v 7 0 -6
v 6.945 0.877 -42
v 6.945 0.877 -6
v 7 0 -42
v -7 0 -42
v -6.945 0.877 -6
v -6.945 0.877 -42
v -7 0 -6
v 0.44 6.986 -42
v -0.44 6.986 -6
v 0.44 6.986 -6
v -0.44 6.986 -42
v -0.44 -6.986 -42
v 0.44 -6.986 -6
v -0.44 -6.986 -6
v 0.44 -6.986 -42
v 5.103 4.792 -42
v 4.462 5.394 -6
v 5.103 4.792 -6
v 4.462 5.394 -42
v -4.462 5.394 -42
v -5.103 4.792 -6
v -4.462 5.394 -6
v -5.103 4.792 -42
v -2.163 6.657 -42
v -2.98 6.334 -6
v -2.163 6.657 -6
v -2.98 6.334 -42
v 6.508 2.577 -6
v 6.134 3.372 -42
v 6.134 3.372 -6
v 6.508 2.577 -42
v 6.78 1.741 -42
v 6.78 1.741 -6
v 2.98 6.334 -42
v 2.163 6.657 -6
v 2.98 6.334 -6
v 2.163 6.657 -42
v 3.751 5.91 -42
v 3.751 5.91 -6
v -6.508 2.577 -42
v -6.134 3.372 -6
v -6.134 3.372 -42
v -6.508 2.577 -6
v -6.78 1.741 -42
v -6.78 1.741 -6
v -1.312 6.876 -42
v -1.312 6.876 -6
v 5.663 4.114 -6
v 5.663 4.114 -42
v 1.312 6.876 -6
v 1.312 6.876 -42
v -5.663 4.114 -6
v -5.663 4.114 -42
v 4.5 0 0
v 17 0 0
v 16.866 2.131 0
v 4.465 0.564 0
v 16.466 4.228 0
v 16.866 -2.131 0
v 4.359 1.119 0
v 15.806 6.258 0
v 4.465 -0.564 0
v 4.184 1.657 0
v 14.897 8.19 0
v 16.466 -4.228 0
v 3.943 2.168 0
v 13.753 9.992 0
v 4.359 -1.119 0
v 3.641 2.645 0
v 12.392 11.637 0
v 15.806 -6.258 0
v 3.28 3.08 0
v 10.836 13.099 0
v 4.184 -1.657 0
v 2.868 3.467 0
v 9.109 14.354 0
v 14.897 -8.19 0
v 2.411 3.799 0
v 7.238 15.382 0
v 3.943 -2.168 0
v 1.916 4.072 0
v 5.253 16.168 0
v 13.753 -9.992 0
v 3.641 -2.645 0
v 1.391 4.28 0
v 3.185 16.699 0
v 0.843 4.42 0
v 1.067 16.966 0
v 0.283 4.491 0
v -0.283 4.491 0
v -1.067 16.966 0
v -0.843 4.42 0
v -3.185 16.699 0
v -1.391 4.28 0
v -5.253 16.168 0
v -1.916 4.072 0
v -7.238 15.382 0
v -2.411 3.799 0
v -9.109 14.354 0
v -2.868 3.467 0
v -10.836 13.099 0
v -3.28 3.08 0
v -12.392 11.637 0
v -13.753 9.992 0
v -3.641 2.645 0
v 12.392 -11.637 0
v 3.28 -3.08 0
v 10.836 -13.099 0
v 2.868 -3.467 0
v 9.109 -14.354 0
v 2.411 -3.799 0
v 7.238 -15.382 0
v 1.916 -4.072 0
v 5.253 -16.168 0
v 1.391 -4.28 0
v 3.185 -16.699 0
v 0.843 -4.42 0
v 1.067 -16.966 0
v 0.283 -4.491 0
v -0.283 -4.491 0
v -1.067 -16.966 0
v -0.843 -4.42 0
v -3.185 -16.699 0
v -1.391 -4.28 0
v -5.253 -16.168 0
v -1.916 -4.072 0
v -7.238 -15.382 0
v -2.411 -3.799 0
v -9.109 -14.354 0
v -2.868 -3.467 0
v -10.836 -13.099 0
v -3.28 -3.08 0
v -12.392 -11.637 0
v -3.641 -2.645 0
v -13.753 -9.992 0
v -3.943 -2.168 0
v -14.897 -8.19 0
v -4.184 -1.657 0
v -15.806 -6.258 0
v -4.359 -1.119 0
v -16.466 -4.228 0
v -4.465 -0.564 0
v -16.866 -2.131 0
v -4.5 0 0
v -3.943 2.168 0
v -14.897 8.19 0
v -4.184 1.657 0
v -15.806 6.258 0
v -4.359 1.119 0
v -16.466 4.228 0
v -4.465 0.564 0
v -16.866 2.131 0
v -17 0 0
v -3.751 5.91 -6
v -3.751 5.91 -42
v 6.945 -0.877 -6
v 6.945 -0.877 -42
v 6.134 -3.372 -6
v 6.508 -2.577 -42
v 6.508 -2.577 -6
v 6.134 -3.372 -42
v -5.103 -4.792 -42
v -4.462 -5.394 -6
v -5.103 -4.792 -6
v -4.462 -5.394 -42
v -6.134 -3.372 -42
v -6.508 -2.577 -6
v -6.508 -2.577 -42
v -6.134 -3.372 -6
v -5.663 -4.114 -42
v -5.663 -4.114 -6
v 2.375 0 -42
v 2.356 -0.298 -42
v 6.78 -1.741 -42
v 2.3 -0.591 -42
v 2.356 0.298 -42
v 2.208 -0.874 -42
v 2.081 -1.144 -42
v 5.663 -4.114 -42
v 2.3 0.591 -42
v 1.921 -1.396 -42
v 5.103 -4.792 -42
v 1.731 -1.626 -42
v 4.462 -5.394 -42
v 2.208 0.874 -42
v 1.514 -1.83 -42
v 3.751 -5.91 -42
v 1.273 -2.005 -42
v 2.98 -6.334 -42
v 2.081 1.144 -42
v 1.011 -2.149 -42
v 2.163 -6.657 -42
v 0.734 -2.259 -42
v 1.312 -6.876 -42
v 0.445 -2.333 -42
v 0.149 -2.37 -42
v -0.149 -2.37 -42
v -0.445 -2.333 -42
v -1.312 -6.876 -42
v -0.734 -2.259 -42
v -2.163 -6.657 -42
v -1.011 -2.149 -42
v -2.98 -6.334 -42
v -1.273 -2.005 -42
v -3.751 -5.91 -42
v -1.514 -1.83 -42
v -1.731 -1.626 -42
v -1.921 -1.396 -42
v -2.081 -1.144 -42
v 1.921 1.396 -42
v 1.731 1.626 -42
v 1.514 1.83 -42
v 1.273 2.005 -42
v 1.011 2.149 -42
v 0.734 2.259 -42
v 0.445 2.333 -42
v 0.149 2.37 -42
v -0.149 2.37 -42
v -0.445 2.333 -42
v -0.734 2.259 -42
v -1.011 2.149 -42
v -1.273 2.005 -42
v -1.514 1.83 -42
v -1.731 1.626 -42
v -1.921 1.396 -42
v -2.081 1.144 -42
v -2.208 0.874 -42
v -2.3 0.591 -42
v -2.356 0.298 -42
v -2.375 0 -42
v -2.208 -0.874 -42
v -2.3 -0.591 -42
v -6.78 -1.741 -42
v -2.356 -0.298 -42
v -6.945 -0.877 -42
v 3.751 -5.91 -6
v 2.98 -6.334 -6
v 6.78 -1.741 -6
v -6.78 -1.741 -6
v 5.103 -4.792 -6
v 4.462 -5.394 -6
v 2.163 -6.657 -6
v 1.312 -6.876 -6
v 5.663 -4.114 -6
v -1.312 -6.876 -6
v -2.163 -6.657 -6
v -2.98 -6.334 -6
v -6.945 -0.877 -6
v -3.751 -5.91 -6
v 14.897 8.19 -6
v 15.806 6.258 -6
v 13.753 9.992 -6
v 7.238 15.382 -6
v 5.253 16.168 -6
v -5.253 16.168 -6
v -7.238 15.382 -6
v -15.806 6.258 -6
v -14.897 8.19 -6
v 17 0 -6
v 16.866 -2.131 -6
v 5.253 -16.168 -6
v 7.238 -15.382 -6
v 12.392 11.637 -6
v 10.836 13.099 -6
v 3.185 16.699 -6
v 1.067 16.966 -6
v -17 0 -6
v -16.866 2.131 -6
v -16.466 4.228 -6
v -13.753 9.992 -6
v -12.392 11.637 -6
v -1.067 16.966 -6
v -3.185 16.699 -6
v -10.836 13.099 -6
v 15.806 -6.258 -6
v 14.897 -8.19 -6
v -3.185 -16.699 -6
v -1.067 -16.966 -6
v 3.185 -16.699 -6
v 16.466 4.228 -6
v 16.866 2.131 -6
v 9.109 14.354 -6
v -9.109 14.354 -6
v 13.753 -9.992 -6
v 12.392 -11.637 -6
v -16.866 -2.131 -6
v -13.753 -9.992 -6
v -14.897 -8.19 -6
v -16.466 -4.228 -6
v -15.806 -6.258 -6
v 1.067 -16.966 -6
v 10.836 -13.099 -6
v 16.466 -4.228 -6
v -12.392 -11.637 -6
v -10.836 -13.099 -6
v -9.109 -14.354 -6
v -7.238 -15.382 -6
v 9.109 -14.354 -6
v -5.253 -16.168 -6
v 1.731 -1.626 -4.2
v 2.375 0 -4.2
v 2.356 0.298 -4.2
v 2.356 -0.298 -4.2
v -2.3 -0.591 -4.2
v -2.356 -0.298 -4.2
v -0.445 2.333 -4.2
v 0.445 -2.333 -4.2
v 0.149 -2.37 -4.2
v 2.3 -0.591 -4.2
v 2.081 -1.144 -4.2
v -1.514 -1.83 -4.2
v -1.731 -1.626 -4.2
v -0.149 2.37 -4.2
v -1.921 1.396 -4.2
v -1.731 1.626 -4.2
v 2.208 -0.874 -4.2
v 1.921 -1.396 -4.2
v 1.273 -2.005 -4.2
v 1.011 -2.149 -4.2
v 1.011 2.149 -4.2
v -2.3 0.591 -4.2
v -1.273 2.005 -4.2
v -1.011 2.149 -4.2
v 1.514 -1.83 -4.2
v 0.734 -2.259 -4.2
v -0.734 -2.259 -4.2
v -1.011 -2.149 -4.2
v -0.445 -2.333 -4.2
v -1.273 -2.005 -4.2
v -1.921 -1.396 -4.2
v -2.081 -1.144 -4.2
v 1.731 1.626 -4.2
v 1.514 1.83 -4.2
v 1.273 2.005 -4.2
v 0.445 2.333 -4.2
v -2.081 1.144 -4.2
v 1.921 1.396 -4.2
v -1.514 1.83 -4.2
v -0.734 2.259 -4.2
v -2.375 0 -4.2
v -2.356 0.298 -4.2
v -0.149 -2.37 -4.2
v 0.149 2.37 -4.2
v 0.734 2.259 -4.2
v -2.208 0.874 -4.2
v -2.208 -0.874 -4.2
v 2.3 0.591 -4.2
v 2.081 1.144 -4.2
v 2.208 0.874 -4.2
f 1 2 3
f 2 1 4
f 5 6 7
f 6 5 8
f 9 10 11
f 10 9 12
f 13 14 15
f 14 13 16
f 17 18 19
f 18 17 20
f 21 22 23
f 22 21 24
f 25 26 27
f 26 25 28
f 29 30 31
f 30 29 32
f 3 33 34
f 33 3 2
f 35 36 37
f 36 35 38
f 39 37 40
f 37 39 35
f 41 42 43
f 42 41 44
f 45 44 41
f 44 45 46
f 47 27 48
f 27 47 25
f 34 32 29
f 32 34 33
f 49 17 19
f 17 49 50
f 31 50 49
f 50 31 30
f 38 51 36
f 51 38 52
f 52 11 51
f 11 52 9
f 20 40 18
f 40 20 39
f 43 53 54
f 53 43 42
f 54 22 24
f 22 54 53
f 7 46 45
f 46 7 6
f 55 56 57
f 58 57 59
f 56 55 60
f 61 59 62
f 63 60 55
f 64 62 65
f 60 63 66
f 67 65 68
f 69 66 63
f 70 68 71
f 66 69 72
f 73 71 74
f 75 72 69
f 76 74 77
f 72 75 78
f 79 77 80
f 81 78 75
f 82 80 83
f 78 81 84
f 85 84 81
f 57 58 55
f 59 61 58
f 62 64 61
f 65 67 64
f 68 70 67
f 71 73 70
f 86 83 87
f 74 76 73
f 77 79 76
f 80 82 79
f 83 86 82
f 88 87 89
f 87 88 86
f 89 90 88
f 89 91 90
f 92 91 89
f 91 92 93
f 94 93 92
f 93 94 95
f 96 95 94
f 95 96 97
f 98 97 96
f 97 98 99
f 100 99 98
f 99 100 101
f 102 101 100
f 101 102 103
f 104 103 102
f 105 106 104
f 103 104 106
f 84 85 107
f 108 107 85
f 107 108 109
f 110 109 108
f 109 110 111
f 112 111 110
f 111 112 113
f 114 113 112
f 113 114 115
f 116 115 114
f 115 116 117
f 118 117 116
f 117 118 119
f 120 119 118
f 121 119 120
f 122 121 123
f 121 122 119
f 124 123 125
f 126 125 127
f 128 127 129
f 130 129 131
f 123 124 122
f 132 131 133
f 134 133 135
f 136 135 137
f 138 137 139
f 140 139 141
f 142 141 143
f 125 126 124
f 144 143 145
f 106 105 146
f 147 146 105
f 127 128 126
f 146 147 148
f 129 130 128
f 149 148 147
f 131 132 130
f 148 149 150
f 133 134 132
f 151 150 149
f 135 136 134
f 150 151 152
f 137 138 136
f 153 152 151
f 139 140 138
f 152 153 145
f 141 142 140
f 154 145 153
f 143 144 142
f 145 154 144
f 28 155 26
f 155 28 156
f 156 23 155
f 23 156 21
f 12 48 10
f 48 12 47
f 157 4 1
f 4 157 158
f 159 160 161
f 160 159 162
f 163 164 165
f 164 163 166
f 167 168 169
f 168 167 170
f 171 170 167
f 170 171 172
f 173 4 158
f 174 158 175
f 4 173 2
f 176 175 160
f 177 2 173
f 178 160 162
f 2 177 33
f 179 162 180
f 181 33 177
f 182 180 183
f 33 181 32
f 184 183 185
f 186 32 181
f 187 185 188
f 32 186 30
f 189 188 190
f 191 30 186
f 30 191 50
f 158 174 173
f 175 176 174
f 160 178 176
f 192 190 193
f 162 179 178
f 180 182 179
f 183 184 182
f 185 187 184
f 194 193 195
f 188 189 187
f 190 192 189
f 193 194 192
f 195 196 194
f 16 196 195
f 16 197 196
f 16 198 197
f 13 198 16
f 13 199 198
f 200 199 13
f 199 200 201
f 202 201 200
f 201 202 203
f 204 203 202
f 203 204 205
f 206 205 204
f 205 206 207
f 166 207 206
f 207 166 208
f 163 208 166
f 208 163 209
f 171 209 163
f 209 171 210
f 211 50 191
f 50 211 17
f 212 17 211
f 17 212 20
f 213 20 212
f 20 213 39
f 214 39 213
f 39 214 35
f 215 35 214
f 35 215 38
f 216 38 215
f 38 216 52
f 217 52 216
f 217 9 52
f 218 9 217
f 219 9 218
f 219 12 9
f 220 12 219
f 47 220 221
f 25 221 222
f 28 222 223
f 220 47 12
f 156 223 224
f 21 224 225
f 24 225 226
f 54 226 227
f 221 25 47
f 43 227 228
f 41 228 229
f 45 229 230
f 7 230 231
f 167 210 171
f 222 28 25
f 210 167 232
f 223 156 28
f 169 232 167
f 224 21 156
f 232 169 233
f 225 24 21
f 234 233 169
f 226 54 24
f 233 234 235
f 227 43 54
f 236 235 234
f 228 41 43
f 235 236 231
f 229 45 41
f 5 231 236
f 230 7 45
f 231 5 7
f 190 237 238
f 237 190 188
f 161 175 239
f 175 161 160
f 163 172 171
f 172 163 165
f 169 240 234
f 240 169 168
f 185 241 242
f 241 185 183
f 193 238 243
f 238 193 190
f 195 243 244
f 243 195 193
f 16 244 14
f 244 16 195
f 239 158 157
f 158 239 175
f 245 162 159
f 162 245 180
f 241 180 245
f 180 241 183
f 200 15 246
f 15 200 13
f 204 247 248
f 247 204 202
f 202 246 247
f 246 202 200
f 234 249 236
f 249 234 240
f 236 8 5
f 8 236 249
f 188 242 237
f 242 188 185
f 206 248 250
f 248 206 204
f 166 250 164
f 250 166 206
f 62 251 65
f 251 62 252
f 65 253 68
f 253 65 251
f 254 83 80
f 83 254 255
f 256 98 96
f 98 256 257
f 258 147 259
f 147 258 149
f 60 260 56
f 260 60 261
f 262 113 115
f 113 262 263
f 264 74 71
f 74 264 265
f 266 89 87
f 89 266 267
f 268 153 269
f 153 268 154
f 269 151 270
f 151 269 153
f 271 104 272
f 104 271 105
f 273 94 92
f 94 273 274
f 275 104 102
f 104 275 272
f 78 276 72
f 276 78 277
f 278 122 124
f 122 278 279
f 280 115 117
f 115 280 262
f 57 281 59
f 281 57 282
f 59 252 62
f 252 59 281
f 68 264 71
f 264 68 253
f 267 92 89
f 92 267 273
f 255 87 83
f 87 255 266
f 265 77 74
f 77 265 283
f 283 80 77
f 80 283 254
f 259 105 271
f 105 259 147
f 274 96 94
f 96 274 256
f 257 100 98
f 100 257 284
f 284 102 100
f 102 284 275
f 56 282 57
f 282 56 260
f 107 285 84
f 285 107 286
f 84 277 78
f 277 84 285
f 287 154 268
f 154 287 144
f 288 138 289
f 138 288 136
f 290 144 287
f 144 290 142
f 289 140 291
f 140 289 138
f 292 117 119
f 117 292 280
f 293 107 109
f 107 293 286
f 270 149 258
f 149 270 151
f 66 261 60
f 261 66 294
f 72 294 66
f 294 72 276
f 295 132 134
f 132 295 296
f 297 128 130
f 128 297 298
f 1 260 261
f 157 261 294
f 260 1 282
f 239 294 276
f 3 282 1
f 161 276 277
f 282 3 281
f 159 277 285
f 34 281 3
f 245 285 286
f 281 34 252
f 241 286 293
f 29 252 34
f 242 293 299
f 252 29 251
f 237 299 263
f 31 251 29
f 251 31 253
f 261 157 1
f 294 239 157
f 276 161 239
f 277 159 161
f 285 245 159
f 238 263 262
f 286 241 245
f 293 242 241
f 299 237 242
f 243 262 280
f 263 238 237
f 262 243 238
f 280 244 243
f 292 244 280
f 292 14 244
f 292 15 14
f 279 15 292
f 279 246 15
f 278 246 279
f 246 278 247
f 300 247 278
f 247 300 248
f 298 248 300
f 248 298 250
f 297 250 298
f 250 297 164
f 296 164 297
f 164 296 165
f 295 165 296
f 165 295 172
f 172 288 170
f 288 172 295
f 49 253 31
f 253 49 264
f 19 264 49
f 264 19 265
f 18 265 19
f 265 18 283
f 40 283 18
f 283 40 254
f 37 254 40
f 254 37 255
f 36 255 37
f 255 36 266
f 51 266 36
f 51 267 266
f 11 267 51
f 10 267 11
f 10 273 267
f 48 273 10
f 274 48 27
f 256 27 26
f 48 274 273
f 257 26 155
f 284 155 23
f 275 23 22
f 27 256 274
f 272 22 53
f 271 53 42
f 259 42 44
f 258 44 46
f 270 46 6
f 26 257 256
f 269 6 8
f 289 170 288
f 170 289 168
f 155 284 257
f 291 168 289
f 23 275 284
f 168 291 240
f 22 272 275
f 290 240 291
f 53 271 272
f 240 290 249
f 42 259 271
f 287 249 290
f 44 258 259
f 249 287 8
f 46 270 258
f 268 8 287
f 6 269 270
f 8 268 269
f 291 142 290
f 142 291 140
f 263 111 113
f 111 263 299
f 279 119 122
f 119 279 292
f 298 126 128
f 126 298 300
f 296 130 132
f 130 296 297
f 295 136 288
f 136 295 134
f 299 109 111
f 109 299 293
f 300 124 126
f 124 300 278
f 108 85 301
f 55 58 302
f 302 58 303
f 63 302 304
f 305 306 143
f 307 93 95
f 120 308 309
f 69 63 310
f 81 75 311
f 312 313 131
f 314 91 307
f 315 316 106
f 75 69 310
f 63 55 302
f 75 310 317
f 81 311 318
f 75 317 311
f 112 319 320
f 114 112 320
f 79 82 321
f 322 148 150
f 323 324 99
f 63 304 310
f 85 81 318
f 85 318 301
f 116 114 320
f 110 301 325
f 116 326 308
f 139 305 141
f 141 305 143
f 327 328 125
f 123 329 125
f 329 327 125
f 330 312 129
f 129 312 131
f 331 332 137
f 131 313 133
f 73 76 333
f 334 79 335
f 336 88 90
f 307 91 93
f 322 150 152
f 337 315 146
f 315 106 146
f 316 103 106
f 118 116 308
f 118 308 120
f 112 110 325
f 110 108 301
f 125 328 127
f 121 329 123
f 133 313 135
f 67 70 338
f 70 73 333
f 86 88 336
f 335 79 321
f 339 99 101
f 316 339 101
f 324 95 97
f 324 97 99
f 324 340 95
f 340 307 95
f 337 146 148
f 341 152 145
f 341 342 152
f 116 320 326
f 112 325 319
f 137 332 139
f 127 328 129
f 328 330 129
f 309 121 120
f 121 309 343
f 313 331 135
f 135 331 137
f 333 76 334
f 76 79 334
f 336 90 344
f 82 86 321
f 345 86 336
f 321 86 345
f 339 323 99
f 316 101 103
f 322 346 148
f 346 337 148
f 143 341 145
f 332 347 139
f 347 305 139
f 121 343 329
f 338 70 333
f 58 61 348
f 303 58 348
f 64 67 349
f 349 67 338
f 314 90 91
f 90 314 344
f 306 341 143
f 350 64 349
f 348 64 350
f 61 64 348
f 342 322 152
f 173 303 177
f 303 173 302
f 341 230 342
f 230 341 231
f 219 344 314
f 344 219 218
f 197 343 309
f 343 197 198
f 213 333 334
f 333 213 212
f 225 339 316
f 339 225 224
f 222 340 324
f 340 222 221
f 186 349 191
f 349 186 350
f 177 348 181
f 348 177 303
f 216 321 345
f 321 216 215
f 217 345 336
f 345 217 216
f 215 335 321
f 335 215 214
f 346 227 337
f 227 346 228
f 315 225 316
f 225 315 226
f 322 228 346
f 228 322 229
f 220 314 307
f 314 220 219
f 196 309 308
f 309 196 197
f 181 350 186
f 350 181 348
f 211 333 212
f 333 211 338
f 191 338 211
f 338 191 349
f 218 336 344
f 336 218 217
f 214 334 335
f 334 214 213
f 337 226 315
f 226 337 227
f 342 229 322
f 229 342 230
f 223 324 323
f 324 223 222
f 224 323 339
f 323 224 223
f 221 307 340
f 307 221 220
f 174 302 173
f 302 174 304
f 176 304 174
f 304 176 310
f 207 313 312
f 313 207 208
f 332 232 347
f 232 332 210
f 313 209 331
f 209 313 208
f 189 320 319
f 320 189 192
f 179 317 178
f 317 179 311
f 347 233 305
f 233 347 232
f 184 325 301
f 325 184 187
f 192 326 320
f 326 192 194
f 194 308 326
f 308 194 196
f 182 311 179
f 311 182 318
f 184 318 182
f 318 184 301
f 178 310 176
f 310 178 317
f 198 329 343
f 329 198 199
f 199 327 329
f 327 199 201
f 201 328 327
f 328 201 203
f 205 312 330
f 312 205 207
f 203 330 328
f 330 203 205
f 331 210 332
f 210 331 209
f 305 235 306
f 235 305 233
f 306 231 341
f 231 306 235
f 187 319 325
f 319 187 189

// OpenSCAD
$fn = 50;


difference() {
	union() {
		translate(v = [0, 0, -42.0000000000]) {
			cylinder(h = 42, r = 7.0000000000);
		}
		translate(v = [0, 0, -6.0000000000]) {
			cylinder(h = 6, r = 17.0000000000);
		}
	}
	union() {
		translate(v = [0, 0, 0]) {
			rotate(a = [0, 0, 0]) {
				difference() {
					union() {
						#translate(v = [0, 0, -42.0000000000]) {
							cylinder(h = 42, r = 2.2500000000);
						}
						#translate(v = [0, 0, -4.2000000000]) {
							cylinder(h = 4.2000000000, r1 = 2.3750000000, r2 = 4.5000000000);
						}
						#translate(v = [0, 0, -42.0000000000]) {
							cylinder(h = 42, r = 2.3750000000);
						}
						#translate(v = [0, 0, -42.0000000000]) {
							cylinder(h = 42, r = 2.2500000000);
						}
					}
					union();
				}
			}
		}
	}
}
